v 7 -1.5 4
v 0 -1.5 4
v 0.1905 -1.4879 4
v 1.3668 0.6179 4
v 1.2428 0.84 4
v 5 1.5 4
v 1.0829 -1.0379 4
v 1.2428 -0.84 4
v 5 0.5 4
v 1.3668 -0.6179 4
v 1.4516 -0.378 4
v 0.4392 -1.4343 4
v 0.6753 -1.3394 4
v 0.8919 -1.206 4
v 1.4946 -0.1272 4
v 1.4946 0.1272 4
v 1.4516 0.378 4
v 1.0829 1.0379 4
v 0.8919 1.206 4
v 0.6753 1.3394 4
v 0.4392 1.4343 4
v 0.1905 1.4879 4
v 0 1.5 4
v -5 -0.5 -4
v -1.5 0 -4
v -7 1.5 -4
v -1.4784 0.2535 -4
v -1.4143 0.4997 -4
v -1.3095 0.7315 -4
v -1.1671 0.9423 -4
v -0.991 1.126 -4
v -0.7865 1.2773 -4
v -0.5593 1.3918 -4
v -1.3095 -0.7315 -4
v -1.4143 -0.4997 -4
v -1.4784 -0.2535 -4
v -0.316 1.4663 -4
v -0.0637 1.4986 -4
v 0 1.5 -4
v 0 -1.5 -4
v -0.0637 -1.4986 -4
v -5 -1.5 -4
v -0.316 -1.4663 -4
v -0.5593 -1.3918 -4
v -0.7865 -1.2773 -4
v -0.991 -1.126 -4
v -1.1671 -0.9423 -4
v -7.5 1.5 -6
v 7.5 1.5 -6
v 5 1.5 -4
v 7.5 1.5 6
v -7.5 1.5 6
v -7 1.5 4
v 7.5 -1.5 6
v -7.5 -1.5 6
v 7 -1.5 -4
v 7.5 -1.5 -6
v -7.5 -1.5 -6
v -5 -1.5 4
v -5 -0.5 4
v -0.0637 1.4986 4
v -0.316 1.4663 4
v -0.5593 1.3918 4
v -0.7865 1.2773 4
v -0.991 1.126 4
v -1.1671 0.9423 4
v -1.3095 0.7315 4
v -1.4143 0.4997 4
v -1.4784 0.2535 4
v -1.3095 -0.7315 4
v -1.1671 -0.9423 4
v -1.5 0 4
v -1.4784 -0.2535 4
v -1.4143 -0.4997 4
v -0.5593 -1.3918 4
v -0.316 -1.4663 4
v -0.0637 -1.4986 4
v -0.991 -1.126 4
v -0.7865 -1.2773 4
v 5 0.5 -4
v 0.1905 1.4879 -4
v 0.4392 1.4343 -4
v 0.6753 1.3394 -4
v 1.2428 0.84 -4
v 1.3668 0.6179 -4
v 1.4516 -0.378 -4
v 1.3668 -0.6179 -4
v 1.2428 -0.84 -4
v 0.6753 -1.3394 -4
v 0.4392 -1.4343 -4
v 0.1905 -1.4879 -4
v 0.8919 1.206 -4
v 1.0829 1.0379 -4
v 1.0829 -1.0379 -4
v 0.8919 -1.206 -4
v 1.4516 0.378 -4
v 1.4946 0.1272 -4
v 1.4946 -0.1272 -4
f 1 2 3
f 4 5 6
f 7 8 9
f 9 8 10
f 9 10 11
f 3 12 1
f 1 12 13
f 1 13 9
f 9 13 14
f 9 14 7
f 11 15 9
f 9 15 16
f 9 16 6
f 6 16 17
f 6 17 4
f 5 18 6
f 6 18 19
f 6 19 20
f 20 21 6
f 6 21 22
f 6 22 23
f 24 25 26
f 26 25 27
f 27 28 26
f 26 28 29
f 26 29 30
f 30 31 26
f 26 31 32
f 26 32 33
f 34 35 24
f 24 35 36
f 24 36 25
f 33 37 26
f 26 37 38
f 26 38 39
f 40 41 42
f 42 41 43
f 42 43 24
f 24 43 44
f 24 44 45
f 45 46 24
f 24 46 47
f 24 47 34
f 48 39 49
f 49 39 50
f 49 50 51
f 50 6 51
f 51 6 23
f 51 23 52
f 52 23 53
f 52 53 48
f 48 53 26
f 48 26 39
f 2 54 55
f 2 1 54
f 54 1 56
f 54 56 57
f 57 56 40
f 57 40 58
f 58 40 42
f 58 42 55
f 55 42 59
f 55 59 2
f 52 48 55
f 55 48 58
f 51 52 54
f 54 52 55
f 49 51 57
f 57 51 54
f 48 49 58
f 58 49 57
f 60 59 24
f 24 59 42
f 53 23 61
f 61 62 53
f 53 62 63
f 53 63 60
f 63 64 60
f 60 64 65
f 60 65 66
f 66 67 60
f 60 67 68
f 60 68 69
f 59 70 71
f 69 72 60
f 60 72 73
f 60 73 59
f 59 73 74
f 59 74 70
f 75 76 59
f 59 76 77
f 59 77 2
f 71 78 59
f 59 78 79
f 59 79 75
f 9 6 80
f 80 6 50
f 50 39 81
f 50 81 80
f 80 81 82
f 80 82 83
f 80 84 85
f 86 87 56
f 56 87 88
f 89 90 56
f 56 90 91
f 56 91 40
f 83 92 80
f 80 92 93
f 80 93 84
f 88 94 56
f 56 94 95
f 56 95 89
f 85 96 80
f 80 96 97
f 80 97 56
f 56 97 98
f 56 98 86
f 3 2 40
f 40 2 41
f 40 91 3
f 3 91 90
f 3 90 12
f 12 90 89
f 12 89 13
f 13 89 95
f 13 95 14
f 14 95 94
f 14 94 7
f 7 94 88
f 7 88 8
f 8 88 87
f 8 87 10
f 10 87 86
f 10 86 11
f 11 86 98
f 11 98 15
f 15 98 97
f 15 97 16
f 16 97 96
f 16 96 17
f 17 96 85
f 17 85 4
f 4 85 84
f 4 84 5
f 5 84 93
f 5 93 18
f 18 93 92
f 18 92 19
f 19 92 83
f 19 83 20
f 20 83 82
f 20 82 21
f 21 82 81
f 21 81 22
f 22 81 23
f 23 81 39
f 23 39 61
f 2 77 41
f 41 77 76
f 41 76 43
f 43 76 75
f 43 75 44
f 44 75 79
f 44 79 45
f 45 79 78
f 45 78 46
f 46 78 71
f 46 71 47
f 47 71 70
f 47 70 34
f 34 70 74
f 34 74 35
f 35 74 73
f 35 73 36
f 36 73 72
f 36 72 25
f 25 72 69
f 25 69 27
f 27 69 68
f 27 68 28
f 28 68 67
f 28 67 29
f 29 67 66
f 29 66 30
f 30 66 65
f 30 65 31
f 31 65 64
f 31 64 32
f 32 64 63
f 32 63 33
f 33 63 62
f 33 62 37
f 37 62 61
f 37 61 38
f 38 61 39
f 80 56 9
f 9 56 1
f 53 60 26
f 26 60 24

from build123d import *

# Parameters (mm, degrees)
SKETCH1_W           = 15
SKETCH1_H           = 12
SKETCH1_W_2         = 10
SKETCH1_H_2         = 8
BOSS_EXTRUDE1_DEPTH = 1.5
BOSS_EXTRUDE2_REACH = 12
SKETCH2_R           = 1.5
CHAMFER1_SIZE       = 2
CHAMFER2_SIZE       = 2


with BuildPart() as part:
    # Sketch1 → Boss-Extrude1 (new body, symmetric)
    with BuildSketch(Plane(origin=(0, 0, 0), x_dir=(1, 0, 0), z_dir=(0, 1, 0))):
        Rectangle(SKETCH1_W, SKETCH1_H)
        Rectangle(SKETCH1_W_2, SKETCH1_H_2, mode=Mode.SUBTRACT)
    extrude(amount=BOSS_EXTRUDE1_DEPTH, both=True)

    # Sketch2 → Boss-Extrude2 (add, up to next)
    with BuildSketch(Plane.XY.offset(-4), mode=Mode.PRIVATE) as boss_extrude2_sk1:
        Circle(SKETCH2_R)
    boss_extrude2_tool1 = extrude(boss_extrude2_sk1.sketch, amount=BOSS_EXTRUDE2_REACH, mode=Mode.PRIVATE) - part.part
    add(boss_extrude2_tool1.solids().sort_by_distance((0, 0, -4))[0])

    # Chamfer1
    chamfer1_edges = [part.edges().sort_by_distance(p)[0] for p in [
        (5, -1.5, 0),
    ]]
    chamfer(chamfer1_edges, length=CHAMFER1_SIZE)

    # Chamfer2
    chamfer2_edges = [part.edges().sort_by_distance(p)[0] for p in [
        (-5, 1.5, 0),
    ]]
    chamfer(chamfer2_edges, length=CHAMFER2_SIZE)


solid = part.part
